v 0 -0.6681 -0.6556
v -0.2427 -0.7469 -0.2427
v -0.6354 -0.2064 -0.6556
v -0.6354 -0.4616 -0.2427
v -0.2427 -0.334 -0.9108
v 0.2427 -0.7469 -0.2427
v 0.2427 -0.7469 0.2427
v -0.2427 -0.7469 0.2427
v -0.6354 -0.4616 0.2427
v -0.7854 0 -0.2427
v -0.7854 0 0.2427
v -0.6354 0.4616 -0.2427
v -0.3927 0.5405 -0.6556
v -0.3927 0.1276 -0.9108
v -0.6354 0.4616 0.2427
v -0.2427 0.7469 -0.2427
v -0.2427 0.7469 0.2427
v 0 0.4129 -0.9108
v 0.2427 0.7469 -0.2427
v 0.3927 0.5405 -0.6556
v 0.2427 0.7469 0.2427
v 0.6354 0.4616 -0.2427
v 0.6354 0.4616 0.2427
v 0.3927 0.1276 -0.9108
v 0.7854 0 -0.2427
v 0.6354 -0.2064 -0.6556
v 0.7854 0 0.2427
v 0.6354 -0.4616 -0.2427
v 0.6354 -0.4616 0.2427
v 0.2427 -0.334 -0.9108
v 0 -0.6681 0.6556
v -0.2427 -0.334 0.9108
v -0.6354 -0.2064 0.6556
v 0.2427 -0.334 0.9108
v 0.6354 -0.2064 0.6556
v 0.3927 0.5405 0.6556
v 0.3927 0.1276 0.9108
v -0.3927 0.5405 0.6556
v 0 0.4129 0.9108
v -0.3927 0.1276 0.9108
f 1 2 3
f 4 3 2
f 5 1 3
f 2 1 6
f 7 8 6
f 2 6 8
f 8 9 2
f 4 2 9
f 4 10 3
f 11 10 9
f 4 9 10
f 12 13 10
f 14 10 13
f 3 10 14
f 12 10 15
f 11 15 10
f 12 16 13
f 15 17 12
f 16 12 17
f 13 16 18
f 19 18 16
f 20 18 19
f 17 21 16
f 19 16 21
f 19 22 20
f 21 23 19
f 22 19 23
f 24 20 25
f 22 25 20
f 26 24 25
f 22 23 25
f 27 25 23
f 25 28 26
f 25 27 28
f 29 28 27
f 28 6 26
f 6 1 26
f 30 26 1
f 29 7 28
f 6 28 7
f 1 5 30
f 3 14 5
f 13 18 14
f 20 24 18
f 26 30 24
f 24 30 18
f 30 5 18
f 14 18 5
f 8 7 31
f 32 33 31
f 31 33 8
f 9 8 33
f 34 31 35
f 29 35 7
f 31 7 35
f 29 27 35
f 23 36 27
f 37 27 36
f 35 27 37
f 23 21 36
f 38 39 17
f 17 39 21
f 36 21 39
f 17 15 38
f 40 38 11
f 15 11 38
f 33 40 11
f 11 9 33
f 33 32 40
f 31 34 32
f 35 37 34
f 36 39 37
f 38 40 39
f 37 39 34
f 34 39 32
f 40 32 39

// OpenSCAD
polyhedron( points = [[-0.242695116366411, -0.746938764700213, -0.242695116374567], [-0.635384063824364, -0.461633544051249, -0.242695116374567], [-0.785377894998118, 8.9003736811978e-11, -0.242695116374567], [-0.635384064485281, 0.461633544215785, -0.242695116374567], [-0.242695117435797, 0.746938764829487, -0.242695116374567], [0.242695115392127, 0.746938764829492, -0.242695116374567], [0.635384062875697, 0.461633544215785, -0.242695116374567], [0.785377894090905, 8.9003736811978e-11, -0.242695116374567], [0.635384063619524, -0.461633544051246, -0.242695116374567], [0.242695116595655, -0.746938764700213, -0.242695116374567], [1.27204186263448e-10, -0.668082340944911, -0.655592710370453], [-0.635384063812465, -0.20644879693381, -0.655592710163857], [-0.392688947161543, 0.54048996741276, -0.655592710389945], [0.392688947508208, 0.540489967327448, -0.655592710389945], [0.635384063913272, -0.206448797170035, -0.655592710389945], [-0.242695116405836, -0.334041170318248, -0.9107774571488], [-0.392688947171039, 0.127592373393489, -0.910777457363473], [1.5523785643637e-10, 0.412897593833893, -0.910777457363473], [0.392688947425385, 0.127592373316235, -0.910777457363473], [0.242695116543153, -0.334041170171396, -0.910777457071341], [-0.242695116344618, -0.746938764633143, 0.242695116587499], [0.24269511657217, -0.746938764633143, 0.242695116498636], [0.63538406389158, -0.461633544111097, 0.242695116376648], [0.785377894752317, -1.32615679939261e-10, 0.242695116268129], [0.635384063871543, 0.461633543859334, 0.242695116214531], [0.242695116539742, 0.746938764416639, 0.242695116236325], [-0.242695116377043, 0.746938764460227, 0.242695116325187], [-0.635384063722077, 0.461633543973439, 0.242695116447175], [-0.785377894624266, 8.4290161404575e-12, 0.242695116555694], [-0.635384063784941, -0.461633543996988, 0.242695116609293], [-0.635384063473807, -0.206448796865661, 0.655592710503313], [3.15903966071483e-10, -0.668082341023173, 0.655592710261453], [0.635384063900521, -0.206448797030801, 0.655592710290159], [0.392688947440219, 0.540489967424002, 0.655592710203434], [-0.392688947156272, 0.540489967479739, 0.655592710347217], [-0.242695115977688, -0.33404117037876, 0.910777457196912], [0.242695116622352, -0.334041170421358, 0.910777457322721], [0.392688947449781, 0.127592373468079, 0.910777457214202], [1.92371678114955e-10, 0.412897593966196, 0.910777457235996], [-0.392688946673306, 0.1275923736596, 0.910777457065852]], faces = [[0, 1, 11, 15, 10], [0, 10, 9], [0, 9, 21, 20], [0, 20, 29, 1], [1, 2, 11], [1, 29, 28, 2], [2, 3, 12, 16, 11], [2, 28, 27, 3], [3, 4, 12], [3, 27, 26, 4], [4, 5, 13, 17, 12], [4, 26, 25, 5], [5, 6, 13], [5, 25, 24, 6], [6, 7, 14, 18, 13], [6, 24, 23, 7], [7, 8, 14], [7, 23, 22, 8], [8, 9, 10, 19, 14], [8, 22, 21, 9], [10, 15, 19], [11, 16, 15], [12, 17, 16], [13, 18, 17], [14, 19, 18], [15, 16, 17, 18, 19], [20, 21, 31], [20, 31, 35, 30, 29], [21, 22, 32, 36, 31], [22, 23, 32], [23, 24, 33, 37, 32], [24, 25, 33], [25, 26, 34, 38, 33], [26, 27, 34], [27, 28, 30, 39, 34], [28, 29, 30], [30, 35, 39], [31, 36, 35], [32, 37, 36], [33, 38, 37], [34, 39, 38], [35, 36, 37, 38, 39]]);
